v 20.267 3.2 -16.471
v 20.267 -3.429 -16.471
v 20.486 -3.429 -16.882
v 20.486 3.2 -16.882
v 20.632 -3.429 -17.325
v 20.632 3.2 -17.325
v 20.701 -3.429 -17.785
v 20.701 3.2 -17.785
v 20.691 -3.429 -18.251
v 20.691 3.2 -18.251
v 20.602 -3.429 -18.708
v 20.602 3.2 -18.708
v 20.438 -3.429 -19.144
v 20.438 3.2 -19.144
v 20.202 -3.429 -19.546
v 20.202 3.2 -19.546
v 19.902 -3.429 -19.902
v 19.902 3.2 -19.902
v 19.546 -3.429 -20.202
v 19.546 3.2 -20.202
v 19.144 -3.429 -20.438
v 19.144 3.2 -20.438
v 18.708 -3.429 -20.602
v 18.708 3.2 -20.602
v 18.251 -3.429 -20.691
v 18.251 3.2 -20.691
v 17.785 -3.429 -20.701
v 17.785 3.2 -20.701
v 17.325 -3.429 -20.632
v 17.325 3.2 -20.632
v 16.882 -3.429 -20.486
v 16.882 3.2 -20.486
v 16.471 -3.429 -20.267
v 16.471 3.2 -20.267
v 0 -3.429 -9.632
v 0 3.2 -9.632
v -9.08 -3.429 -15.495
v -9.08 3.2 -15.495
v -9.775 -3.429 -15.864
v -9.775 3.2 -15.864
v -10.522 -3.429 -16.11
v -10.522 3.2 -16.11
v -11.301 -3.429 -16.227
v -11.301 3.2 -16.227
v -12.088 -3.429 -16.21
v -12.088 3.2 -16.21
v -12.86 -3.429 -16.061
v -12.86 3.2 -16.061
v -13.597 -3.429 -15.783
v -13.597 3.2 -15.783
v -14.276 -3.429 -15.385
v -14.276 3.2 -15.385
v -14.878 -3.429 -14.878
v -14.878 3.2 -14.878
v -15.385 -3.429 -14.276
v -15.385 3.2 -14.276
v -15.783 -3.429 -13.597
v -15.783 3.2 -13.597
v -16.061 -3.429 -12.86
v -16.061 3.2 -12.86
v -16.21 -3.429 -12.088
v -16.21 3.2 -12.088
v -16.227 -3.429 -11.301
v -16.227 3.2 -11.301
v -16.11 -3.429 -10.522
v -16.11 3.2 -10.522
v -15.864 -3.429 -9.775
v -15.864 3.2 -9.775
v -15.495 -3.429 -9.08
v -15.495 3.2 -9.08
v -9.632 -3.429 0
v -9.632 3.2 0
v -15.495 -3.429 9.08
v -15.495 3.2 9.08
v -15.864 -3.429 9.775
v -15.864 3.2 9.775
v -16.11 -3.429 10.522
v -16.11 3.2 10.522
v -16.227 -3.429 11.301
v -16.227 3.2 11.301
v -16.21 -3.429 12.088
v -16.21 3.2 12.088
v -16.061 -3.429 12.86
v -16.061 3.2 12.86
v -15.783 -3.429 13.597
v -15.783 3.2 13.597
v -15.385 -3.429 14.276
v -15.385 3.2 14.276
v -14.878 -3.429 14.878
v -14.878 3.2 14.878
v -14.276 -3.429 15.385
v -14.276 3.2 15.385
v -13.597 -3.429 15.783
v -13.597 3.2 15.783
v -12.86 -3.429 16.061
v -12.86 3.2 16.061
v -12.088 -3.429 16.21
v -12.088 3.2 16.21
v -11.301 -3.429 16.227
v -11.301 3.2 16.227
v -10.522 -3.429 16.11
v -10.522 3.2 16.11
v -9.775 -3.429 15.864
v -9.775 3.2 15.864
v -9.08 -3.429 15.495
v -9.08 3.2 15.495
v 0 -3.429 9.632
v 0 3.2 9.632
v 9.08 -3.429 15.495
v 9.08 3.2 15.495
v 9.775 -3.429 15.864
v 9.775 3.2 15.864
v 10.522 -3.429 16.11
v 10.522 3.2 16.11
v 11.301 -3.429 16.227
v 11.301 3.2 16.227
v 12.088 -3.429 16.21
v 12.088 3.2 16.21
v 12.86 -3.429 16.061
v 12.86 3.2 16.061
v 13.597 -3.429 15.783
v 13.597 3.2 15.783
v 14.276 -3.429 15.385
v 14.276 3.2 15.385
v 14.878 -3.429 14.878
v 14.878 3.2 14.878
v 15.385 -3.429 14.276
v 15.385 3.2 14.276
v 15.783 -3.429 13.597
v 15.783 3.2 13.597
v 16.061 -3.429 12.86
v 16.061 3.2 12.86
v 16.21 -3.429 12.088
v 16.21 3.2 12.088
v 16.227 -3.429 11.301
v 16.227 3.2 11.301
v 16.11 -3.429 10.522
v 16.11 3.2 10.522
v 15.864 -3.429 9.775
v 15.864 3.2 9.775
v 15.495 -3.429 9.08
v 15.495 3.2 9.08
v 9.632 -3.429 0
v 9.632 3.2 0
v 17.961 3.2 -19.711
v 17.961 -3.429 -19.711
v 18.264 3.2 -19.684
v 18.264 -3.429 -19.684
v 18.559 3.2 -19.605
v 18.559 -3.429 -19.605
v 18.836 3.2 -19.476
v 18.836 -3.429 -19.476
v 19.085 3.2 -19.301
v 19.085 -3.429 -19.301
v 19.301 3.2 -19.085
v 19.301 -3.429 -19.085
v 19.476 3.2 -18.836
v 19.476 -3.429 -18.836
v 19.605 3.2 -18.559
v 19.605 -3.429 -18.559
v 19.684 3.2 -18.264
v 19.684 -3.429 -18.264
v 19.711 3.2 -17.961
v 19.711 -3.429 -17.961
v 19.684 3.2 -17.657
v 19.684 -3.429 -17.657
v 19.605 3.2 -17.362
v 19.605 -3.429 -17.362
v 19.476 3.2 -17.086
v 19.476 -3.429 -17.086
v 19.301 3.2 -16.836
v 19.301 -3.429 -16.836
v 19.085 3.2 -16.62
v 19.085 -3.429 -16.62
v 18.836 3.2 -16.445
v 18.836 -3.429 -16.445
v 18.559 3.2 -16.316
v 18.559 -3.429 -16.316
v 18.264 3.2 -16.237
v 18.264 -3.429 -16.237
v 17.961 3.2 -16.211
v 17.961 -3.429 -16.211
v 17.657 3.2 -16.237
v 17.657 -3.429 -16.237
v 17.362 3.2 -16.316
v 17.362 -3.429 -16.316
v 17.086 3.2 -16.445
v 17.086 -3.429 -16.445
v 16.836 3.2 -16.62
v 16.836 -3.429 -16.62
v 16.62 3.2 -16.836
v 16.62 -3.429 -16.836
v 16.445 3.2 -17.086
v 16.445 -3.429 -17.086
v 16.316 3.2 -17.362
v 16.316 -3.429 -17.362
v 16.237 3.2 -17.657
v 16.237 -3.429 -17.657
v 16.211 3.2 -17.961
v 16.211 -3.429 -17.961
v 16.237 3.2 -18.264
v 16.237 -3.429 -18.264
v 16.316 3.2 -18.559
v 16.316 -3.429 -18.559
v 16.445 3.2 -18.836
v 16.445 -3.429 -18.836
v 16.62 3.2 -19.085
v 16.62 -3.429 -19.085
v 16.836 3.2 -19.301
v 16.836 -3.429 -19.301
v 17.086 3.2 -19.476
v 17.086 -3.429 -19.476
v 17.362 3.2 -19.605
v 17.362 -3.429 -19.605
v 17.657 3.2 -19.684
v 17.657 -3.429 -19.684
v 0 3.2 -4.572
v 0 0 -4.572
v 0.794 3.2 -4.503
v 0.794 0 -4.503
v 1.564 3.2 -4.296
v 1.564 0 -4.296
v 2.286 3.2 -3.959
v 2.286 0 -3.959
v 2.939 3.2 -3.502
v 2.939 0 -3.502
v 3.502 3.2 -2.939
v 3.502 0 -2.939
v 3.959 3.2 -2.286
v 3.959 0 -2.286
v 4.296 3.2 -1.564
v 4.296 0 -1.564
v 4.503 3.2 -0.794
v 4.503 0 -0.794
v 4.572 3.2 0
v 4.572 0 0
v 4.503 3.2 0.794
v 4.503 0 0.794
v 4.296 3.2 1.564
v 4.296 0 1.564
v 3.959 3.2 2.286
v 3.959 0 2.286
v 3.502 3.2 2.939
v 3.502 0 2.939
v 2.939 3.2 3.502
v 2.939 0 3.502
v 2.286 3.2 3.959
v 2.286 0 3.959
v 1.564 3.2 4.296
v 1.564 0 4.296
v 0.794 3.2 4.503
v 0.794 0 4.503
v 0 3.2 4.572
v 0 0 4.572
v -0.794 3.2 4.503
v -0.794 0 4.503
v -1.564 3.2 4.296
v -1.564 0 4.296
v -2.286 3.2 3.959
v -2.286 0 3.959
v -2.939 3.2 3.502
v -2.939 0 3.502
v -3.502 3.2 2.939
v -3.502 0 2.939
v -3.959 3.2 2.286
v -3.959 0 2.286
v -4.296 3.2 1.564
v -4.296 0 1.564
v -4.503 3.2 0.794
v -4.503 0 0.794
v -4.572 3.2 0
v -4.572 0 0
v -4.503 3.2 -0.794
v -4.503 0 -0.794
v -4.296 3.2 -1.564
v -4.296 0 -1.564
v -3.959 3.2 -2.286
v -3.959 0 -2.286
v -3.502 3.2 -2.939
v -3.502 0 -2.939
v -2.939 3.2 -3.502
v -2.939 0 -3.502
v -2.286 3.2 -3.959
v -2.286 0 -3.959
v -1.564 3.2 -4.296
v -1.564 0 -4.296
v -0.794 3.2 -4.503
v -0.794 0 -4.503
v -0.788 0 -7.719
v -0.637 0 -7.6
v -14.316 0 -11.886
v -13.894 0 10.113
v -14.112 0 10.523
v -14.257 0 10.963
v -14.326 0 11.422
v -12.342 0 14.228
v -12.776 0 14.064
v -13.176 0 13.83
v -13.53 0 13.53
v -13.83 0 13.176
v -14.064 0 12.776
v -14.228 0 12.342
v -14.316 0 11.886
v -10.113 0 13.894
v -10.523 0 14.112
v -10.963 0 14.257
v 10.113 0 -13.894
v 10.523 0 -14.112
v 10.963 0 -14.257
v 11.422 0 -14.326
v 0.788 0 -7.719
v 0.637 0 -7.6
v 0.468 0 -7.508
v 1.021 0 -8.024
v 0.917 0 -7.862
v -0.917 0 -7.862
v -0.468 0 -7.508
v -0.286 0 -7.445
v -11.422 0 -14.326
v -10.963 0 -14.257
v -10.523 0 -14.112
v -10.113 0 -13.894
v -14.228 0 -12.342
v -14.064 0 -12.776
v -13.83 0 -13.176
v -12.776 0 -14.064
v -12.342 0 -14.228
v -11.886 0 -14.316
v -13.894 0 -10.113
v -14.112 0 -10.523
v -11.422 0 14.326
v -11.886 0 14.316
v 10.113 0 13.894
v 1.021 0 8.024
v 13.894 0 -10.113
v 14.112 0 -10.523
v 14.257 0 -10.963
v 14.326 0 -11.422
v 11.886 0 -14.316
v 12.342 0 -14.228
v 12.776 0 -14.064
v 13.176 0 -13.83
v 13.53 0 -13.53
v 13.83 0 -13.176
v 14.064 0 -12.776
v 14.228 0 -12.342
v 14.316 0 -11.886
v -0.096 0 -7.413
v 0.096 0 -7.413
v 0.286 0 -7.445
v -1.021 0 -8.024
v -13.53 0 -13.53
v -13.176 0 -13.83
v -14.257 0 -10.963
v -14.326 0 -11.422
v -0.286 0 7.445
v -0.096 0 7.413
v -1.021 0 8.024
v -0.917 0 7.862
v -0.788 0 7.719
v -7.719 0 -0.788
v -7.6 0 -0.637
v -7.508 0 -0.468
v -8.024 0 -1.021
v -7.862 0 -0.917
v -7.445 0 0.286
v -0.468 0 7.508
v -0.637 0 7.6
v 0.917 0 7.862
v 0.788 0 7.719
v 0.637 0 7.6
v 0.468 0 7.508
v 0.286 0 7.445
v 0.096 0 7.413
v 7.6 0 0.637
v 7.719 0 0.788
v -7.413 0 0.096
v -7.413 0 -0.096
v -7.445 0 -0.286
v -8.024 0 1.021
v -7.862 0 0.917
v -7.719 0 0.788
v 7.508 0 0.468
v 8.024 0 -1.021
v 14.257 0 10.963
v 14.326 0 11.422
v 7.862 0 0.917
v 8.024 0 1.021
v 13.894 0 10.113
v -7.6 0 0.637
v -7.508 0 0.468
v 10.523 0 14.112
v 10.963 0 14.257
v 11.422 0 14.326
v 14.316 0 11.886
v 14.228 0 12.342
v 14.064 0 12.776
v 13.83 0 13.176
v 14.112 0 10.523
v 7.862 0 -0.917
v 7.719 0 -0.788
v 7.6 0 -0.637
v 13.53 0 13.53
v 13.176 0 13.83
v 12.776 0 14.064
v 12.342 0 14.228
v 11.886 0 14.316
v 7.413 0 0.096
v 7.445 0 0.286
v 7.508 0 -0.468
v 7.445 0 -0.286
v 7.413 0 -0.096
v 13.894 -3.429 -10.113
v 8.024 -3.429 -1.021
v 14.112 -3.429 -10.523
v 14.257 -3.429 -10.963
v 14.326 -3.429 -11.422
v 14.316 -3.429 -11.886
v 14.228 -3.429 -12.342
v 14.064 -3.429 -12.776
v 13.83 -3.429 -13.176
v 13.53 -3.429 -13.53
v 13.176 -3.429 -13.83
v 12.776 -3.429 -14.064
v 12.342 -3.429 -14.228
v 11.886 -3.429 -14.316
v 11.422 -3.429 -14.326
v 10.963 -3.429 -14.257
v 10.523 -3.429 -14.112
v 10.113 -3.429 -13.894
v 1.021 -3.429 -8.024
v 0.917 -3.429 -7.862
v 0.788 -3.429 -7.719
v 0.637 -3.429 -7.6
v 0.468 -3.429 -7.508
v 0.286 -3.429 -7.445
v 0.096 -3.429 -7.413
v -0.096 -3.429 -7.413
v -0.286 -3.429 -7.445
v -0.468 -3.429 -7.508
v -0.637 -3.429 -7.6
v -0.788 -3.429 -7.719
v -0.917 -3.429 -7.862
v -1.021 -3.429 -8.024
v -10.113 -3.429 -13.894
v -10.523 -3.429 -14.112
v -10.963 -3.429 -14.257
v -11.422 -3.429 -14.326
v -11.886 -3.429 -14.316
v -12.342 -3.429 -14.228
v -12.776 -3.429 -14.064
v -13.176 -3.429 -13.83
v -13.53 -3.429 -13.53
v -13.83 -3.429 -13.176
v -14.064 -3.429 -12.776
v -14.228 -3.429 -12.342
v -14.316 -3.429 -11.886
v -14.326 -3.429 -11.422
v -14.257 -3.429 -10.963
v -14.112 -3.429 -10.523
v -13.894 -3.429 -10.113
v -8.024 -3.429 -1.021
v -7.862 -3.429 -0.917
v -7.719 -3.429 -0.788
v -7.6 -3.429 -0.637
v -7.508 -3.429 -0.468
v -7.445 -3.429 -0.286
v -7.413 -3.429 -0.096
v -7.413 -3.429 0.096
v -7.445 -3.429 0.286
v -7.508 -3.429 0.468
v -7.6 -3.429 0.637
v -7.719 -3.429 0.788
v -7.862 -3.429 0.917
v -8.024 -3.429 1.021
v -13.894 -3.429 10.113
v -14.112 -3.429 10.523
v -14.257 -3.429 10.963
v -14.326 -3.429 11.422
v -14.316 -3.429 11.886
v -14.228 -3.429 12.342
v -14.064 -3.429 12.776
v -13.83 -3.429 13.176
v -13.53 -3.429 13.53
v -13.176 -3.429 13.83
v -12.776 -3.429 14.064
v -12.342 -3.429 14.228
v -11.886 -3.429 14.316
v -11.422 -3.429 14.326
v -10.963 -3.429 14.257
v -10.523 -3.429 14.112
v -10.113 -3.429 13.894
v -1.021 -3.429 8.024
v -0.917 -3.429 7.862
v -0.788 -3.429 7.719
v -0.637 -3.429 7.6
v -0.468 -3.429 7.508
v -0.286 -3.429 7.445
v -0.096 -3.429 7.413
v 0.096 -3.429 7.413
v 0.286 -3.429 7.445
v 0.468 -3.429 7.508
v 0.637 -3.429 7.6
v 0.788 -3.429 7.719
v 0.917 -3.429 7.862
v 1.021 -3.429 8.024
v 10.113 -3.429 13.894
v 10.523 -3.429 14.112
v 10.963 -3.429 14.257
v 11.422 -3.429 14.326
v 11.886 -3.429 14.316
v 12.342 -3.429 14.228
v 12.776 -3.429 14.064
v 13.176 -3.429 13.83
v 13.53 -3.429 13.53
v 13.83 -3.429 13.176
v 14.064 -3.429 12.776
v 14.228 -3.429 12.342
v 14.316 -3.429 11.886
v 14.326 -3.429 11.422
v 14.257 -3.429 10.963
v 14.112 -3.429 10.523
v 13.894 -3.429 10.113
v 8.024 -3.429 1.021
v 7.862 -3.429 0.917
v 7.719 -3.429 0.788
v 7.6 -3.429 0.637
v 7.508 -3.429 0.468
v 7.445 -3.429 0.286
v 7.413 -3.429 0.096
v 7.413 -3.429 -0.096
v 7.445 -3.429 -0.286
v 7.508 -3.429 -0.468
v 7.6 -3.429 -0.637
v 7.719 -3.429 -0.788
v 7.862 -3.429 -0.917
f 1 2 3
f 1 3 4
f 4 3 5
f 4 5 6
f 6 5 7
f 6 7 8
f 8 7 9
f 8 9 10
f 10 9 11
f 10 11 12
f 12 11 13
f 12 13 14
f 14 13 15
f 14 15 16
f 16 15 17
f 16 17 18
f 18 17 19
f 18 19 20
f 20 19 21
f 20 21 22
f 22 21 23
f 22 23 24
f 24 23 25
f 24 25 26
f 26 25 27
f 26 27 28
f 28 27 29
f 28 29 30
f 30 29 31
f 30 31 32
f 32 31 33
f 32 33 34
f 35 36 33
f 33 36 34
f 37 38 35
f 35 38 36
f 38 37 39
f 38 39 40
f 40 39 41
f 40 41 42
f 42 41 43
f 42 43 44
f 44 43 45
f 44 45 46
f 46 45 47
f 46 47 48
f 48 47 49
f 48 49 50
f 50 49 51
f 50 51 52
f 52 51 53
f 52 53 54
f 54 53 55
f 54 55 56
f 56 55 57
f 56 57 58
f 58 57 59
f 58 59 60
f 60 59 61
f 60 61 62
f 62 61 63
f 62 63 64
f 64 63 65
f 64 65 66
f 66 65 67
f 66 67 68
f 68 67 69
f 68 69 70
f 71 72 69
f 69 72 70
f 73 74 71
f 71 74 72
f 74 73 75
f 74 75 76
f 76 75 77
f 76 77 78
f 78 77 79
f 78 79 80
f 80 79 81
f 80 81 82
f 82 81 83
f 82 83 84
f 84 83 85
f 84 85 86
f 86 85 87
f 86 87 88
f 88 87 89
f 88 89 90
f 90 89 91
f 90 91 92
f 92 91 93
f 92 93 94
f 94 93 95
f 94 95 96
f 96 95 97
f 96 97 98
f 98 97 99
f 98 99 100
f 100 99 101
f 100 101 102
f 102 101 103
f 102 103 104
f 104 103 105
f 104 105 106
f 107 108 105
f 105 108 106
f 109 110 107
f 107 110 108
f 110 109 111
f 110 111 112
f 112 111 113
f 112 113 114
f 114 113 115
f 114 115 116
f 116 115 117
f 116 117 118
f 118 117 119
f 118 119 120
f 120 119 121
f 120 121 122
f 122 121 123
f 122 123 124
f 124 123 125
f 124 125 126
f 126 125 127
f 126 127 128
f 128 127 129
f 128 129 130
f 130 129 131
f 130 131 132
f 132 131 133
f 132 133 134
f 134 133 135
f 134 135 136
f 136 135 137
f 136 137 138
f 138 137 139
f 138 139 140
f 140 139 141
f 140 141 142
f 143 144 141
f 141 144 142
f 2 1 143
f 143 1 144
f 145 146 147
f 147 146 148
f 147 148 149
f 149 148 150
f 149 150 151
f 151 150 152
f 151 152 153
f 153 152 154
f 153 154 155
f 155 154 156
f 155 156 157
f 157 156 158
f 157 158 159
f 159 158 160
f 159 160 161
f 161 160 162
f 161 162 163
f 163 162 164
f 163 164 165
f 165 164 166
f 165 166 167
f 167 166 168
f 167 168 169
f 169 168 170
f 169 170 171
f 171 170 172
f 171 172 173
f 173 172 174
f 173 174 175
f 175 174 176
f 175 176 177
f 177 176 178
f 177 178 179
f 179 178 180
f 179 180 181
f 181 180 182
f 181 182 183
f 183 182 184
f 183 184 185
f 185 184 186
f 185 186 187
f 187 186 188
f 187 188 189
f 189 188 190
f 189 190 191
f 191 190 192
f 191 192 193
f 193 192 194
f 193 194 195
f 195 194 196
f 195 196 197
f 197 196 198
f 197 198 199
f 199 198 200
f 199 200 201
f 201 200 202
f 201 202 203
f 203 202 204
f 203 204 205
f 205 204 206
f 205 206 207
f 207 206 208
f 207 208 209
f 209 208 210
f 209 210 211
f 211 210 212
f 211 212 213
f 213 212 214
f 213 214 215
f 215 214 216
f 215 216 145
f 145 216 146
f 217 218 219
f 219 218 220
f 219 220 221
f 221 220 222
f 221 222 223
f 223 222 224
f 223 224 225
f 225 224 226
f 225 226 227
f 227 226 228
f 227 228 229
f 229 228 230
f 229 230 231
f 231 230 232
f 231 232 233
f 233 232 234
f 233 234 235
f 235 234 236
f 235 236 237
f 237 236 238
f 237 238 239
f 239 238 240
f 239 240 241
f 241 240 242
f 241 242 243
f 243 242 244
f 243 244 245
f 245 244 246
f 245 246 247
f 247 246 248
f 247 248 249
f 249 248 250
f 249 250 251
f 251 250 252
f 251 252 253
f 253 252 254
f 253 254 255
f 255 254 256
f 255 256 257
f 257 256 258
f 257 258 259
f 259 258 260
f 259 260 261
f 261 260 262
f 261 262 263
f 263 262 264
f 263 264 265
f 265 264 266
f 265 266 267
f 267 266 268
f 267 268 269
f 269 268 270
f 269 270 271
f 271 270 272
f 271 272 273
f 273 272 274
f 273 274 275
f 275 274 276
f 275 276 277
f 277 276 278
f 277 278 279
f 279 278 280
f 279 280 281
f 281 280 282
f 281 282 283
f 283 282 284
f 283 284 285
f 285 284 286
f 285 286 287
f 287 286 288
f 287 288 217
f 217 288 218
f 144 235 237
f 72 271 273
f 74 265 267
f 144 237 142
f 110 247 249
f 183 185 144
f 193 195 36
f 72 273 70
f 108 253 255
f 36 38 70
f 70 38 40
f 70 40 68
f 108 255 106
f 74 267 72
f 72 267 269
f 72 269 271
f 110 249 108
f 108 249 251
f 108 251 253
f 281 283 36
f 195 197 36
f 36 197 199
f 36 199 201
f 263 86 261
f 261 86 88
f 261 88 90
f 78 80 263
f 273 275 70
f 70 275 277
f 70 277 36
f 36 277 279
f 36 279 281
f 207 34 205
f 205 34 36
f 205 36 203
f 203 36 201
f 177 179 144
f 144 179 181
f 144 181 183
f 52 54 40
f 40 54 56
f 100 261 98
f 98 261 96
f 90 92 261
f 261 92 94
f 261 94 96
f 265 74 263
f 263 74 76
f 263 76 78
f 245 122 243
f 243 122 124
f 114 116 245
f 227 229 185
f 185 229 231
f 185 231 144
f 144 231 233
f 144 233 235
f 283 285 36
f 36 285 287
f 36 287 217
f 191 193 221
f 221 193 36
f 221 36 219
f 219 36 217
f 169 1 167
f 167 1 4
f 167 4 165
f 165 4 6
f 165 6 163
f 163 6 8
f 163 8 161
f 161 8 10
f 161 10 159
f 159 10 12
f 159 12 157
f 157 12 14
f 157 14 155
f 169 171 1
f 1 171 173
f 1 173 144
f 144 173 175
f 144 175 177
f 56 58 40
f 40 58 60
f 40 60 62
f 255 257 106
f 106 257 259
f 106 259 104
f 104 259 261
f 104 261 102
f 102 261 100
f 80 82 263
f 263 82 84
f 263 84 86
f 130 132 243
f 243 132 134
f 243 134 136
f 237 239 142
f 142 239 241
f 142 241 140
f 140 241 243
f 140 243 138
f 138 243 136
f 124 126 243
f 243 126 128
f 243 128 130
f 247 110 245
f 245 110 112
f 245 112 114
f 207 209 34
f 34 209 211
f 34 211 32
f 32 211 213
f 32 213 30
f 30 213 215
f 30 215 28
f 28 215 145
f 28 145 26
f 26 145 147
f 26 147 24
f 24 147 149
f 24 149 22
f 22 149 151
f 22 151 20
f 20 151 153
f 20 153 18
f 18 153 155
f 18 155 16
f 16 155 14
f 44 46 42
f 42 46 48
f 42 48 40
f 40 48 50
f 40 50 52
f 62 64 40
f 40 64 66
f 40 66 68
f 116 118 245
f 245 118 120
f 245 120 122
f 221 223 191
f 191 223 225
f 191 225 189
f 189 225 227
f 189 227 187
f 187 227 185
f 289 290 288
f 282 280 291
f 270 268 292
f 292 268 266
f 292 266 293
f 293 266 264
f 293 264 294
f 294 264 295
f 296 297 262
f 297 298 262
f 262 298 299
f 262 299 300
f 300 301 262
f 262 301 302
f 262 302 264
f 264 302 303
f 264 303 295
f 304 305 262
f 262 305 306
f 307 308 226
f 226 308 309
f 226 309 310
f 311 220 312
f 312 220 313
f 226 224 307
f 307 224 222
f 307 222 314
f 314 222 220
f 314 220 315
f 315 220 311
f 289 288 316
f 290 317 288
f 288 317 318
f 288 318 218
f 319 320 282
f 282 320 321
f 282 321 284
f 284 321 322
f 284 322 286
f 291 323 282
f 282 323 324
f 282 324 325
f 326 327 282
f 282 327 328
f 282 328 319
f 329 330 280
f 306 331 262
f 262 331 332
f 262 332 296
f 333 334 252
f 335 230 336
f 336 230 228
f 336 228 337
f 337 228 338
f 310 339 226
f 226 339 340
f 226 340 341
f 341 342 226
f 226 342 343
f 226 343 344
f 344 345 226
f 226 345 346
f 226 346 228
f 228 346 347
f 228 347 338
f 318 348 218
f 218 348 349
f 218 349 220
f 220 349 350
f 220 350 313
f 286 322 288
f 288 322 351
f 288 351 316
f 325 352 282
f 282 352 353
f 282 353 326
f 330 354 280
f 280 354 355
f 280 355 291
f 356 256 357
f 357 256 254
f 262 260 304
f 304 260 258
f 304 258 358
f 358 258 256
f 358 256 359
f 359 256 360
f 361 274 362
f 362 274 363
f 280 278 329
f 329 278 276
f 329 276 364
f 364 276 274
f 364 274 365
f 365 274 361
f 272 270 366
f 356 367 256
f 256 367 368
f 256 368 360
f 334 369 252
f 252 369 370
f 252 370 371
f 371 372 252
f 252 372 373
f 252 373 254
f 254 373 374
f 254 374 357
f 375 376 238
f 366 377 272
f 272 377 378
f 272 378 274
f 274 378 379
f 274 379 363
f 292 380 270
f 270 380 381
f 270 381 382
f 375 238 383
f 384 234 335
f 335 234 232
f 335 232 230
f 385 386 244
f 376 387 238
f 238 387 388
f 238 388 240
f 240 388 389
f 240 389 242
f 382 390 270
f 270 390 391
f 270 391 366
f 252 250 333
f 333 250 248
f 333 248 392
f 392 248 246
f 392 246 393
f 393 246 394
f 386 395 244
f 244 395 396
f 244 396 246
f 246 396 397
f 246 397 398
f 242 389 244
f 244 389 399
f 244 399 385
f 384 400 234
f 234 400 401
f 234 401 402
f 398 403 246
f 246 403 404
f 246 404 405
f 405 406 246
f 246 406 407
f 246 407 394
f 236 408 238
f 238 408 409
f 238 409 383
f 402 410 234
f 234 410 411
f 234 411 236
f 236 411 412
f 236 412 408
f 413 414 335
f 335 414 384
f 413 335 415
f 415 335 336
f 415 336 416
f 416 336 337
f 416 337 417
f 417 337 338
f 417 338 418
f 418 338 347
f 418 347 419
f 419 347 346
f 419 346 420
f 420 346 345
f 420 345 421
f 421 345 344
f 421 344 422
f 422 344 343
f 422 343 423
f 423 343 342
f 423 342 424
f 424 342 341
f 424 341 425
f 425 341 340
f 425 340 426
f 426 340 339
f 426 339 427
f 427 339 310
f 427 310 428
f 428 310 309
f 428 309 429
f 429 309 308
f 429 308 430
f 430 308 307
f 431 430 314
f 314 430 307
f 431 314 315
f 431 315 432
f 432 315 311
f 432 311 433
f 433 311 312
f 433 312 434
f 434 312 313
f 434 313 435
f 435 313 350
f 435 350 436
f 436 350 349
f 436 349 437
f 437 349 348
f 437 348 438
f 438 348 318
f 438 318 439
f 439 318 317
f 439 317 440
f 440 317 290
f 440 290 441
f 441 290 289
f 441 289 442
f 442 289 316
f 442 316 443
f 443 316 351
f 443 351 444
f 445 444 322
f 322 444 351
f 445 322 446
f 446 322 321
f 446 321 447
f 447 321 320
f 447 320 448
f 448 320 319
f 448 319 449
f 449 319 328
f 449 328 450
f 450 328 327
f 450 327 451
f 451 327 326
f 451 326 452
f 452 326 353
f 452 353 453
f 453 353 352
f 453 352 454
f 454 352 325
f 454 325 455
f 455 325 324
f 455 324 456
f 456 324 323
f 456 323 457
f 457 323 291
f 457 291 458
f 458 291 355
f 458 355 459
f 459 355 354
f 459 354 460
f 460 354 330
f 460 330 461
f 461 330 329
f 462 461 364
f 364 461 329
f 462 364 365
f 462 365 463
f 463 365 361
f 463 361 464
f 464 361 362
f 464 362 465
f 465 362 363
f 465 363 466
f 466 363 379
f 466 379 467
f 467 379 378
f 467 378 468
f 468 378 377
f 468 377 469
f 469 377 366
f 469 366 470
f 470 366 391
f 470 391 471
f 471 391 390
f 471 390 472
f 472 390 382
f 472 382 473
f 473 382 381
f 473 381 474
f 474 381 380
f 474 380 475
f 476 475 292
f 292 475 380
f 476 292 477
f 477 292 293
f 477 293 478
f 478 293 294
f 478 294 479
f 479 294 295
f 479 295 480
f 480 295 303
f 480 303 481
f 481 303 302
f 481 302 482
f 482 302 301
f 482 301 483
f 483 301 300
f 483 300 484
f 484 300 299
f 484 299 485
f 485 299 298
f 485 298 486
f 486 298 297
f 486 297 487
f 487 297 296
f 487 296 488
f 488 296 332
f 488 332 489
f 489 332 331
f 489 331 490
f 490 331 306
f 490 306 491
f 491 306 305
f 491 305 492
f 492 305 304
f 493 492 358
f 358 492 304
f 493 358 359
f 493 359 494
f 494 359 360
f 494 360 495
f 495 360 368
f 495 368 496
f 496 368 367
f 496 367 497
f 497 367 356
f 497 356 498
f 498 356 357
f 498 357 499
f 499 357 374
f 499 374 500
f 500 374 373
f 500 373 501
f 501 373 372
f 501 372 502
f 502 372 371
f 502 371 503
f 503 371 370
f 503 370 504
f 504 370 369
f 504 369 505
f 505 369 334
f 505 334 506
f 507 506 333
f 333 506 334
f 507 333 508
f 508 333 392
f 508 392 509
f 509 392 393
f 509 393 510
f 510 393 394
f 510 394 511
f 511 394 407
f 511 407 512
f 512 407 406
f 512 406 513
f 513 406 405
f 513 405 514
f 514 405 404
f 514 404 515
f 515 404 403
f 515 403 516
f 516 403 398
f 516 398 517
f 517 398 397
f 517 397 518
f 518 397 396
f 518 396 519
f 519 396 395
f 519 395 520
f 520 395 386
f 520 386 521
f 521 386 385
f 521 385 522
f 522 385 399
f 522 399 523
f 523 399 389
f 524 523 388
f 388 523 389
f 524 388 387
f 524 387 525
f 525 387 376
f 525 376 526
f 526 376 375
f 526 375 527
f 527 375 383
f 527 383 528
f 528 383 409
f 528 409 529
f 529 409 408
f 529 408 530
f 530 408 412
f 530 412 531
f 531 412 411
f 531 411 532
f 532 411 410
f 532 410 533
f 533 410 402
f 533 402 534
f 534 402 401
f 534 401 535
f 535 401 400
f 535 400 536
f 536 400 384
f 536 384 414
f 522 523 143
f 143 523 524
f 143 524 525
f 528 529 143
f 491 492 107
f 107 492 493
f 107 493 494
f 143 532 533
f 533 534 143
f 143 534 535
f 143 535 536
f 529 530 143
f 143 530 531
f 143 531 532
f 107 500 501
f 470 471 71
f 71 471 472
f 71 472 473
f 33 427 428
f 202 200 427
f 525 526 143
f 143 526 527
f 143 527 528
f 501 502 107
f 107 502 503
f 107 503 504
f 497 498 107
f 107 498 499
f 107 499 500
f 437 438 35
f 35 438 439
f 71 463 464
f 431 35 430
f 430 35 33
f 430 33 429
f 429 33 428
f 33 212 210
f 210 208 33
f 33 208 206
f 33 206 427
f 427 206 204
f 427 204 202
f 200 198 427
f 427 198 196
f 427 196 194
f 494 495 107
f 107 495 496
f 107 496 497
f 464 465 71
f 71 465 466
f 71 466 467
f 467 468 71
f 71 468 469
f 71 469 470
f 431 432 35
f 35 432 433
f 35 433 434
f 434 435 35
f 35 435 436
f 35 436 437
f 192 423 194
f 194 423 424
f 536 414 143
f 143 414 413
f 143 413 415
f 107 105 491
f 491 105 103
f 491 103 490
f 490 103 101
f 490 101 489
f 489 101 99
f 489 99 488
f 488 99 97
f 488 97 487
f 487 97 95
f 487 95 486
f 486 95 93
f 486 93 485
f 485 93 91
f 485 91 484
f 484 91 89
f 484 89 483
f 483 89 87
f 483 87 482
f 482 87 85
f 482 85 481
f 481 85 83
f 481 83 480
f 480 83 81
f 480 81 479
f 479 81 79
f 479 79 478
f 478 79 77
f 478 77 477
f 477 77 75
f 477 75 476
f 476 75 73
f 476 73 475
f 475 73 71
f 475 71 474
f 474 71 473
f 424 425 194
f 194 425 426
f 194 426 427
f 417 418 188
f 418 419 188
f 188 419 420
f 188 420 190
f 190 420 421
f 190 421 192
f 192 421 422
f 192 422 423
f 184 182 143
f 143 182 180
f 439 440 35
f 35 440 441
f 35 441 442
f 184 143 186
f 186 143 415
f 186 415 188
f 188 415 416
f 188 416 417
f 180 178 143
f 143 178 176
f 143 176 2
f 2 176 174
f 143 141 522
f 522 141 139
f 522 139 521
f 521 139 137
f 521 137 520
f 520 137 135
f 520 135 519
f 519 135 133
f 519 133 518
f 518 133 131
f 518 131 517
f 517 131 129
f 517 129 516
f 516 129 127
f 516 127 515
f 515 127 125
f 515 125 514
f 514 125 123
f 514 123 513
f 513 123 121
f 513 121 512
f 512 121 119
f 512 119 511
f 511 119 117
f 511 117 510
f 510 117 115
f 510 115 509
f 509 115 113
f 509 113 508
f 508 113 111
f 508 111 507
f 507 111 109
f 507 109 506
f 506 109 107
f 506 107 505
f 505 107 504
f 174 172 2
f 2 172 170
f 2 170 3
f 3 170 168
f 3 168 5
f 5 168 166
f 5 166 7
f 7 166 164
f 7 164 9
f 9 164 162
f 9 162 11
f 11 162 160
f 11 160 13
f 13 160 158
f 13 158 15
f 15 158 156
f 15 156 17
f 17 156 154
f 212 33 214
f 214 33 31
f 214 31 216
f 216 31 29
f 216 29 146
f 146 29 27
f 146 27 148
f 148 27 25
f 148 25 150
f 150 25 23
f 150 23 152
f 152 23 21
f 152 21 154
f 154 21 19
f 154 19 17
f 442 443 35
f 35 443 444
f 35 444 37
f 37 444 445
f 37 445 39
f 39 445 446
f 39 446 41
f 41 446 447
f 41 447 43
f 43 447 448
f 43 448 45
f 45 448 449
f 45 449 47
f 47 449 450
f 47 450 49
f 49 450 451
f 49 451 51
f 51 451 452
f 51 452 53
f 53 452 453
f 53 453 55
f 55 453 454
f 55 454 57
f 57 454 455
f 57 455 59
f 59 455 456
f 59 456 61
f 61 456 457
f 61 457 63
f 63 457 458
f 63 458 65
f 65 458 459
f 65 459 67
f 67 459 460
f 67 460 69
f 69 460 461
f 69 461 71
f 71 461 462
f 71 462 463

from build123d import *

# Parameters (mm, degrees)
SKETCH1_R           = 4.572
SKETCH1_R_2         = 1.75
BOSS_EXTRUDE1_DEPTH = 3.2004
BOSS_EXTRUDE2_START = -3.429
SKETCH1_3_R         = 1.75
BOSS_EXTRUDE2_DEPTH = 3.429


with BuildPart() as part:
    # Sketch1 → Boss-Extrude1 (new body)
    with BuildSketch(Plane(origin=(0, 0, 0), x_dir=(1, 0, 0), z_dir=(0, 1, 0))):
        with BuildLine():
            Line((15.494618326, -9.079673628), (9.632116129, 0))
            Line((9.632116129, 0), (20.267125172, 16.471194022))
            ThreePointArc((20.267125172, 16.471194022), (19.901971998, 19.901971998), (16.471194022, 20.267125172))
            Line((16.471194022, 20.267125172), (0, 9.632116129))
            Line((0, 9.632116129), (-9.079673628, 15.494618326))
            ThreePointArc((-9.079673628, 15.494618326), (-14.877526676, 14.877526676), (-15.494618326, 9.079673628))
            Line((-15.494618326, 9.079673628), (-9.632116129, 0))
            Line((-9.632116129, 0), (-15.494618326, -9.079673628))
            ThreePointArc((-15.494618326, -9.079673628), (-14.877526676, -14.877526676), (-9.079673628, -15.494618326))
            Line((-9.079673628, -15.494618326), (0, -9.632116129))
            Line((0, -9.632116129), (9.079673628, -15.494618326))
            ThreePointArc((9.079673628, -15.494618326), (14.877526676, -14.877526676), (15.494618326, -9.079673628))
        make_face()
        Circle(SKETCH1_R, mode=Mode.SUBTRACT)
        with Locations((17.960512242, 17.960512242)):
            Circle(SKETCH1_R_2, mode=Mode.SUBTRACT)
    extrude(amount=BOSS_EXTRUDE1_DEPTH)

    # Sketch1<3> → Boss-Extrude2 (add)
    with BuildSketch(Plane(origin=(0, 0, 0), x_dir=(1, 0, 0), z_dir=(0, 1, 0)).offset(BOSS_EXTRUDE2_START)):
        with BuildLine():
            Line((15.494618326, -9.079673628), (9.632116129, 0))
            Line((9.632116129, 0), (15.494618326, 9.079673628))
            Line((15.494618326, 9.079673628), (20.267125172, 16.471194022))
            ThreePointArc((20.267125172, 16.471194022), (19.901971998, 19.901971998), (16.471194022, 20.267125172))
            Line((16.471194022, 20.267125172), (9.079673628, 15.494618326))
            Line((9.079673628, 15.494618326), (0, 9.632116129))
            Line((0, 9.632116129), (-9.079673628, 15.494618326))
            ThreePointArc((-9.079673628, 15.494618326), (-14.877526676, 14.877526676), (-15.494618326, 9.079673628))
            Line((-15.494618326, 9.079673628), (-9.632116129, 0))
            Line((-9.632116129, 0), (-15.494618326, -9.079673628))
            ThreePointArc((-15.494618326, -9.079673628), (-14.877526676, -14.877526676), (-9.079673628, -15.494618326))
            Line((-9.079673628, -15.494618326), (0, -9.632116129))
            Line((0, -9.632116129), (9.079673628, -15.494618326))
            ThreePointArc((9.079673628, -15.494618326), (14.877526676, -14.877526676), (15.494618326, -9.079673628))
        make_face()
        with BuildLine():
            Line((13.894226547, 10.113003756), (8.023816422, 1.021082558))
            ThreePointArc((8.023816422, 1.021082558), (7.408645479, 0), (8.023816422, -1.021082558))
            Line((8.023816422, -1.021082558), (13.894226547, -10.113003756))
            ThreePointArc((13.894226547, -10.113003756), (13.530488258, -13.530488258), (10.113003756, -13.894226547))
            Line((10.113003756, -13.894226547), (1.021082558, -8.023816422))
            ThreePointArc((1.021082558, -8.023816422), (0, -7.408645479), (-1.021082558, -8.023816422))
            Line((-1.021082558, -8.023816422), (-10.113003756, -13.894226547))
            ThreePointArc((-10.113003756, -13.894226547), (-13.530488258, -13.530488258), (-13.894226547, -10.113003756))
            Line((-13.894226547, -10.113003756), (-8.023816422, -1.021082558))
            ThreePointArc((-8.023816422, -1.021082558), (-7.408645479, 0), (-8.023816422, 1.021082558))
            Line((-8.023816422, 1.021082558), (-13.894226547, 10.113003756))
            ThreePointArc((-13.894226547, 10.113003756), (-13.530488258, 13.530488258), (-10.113003756, 13.894226547))
            Line((-10.113003756, 13.894226547), (-1.021082558, 8.023816422))
            ThreePointArc((-1.021082558, 8.023816422), (0, 7.408645479), (1.021082558, 8.023816422))
            Line((1.021082558, 8.023816422), (10.113003756, 13.894226547))
            ThreePointArc((10.113003756, 13.894226547), (13.530488258, 13.530488258), (13.894226547, 10.113003756))
        make_face(mode=Mode.SUBTRACT)
        with Locations((17.960512242, 17.960512242)):
            Circle(SKETCH1_3_R, mode=Mode.SUBTRACT)
    extrude(amount=BOSS_EXTRUDE2_DEPTH)


solid = part.part
